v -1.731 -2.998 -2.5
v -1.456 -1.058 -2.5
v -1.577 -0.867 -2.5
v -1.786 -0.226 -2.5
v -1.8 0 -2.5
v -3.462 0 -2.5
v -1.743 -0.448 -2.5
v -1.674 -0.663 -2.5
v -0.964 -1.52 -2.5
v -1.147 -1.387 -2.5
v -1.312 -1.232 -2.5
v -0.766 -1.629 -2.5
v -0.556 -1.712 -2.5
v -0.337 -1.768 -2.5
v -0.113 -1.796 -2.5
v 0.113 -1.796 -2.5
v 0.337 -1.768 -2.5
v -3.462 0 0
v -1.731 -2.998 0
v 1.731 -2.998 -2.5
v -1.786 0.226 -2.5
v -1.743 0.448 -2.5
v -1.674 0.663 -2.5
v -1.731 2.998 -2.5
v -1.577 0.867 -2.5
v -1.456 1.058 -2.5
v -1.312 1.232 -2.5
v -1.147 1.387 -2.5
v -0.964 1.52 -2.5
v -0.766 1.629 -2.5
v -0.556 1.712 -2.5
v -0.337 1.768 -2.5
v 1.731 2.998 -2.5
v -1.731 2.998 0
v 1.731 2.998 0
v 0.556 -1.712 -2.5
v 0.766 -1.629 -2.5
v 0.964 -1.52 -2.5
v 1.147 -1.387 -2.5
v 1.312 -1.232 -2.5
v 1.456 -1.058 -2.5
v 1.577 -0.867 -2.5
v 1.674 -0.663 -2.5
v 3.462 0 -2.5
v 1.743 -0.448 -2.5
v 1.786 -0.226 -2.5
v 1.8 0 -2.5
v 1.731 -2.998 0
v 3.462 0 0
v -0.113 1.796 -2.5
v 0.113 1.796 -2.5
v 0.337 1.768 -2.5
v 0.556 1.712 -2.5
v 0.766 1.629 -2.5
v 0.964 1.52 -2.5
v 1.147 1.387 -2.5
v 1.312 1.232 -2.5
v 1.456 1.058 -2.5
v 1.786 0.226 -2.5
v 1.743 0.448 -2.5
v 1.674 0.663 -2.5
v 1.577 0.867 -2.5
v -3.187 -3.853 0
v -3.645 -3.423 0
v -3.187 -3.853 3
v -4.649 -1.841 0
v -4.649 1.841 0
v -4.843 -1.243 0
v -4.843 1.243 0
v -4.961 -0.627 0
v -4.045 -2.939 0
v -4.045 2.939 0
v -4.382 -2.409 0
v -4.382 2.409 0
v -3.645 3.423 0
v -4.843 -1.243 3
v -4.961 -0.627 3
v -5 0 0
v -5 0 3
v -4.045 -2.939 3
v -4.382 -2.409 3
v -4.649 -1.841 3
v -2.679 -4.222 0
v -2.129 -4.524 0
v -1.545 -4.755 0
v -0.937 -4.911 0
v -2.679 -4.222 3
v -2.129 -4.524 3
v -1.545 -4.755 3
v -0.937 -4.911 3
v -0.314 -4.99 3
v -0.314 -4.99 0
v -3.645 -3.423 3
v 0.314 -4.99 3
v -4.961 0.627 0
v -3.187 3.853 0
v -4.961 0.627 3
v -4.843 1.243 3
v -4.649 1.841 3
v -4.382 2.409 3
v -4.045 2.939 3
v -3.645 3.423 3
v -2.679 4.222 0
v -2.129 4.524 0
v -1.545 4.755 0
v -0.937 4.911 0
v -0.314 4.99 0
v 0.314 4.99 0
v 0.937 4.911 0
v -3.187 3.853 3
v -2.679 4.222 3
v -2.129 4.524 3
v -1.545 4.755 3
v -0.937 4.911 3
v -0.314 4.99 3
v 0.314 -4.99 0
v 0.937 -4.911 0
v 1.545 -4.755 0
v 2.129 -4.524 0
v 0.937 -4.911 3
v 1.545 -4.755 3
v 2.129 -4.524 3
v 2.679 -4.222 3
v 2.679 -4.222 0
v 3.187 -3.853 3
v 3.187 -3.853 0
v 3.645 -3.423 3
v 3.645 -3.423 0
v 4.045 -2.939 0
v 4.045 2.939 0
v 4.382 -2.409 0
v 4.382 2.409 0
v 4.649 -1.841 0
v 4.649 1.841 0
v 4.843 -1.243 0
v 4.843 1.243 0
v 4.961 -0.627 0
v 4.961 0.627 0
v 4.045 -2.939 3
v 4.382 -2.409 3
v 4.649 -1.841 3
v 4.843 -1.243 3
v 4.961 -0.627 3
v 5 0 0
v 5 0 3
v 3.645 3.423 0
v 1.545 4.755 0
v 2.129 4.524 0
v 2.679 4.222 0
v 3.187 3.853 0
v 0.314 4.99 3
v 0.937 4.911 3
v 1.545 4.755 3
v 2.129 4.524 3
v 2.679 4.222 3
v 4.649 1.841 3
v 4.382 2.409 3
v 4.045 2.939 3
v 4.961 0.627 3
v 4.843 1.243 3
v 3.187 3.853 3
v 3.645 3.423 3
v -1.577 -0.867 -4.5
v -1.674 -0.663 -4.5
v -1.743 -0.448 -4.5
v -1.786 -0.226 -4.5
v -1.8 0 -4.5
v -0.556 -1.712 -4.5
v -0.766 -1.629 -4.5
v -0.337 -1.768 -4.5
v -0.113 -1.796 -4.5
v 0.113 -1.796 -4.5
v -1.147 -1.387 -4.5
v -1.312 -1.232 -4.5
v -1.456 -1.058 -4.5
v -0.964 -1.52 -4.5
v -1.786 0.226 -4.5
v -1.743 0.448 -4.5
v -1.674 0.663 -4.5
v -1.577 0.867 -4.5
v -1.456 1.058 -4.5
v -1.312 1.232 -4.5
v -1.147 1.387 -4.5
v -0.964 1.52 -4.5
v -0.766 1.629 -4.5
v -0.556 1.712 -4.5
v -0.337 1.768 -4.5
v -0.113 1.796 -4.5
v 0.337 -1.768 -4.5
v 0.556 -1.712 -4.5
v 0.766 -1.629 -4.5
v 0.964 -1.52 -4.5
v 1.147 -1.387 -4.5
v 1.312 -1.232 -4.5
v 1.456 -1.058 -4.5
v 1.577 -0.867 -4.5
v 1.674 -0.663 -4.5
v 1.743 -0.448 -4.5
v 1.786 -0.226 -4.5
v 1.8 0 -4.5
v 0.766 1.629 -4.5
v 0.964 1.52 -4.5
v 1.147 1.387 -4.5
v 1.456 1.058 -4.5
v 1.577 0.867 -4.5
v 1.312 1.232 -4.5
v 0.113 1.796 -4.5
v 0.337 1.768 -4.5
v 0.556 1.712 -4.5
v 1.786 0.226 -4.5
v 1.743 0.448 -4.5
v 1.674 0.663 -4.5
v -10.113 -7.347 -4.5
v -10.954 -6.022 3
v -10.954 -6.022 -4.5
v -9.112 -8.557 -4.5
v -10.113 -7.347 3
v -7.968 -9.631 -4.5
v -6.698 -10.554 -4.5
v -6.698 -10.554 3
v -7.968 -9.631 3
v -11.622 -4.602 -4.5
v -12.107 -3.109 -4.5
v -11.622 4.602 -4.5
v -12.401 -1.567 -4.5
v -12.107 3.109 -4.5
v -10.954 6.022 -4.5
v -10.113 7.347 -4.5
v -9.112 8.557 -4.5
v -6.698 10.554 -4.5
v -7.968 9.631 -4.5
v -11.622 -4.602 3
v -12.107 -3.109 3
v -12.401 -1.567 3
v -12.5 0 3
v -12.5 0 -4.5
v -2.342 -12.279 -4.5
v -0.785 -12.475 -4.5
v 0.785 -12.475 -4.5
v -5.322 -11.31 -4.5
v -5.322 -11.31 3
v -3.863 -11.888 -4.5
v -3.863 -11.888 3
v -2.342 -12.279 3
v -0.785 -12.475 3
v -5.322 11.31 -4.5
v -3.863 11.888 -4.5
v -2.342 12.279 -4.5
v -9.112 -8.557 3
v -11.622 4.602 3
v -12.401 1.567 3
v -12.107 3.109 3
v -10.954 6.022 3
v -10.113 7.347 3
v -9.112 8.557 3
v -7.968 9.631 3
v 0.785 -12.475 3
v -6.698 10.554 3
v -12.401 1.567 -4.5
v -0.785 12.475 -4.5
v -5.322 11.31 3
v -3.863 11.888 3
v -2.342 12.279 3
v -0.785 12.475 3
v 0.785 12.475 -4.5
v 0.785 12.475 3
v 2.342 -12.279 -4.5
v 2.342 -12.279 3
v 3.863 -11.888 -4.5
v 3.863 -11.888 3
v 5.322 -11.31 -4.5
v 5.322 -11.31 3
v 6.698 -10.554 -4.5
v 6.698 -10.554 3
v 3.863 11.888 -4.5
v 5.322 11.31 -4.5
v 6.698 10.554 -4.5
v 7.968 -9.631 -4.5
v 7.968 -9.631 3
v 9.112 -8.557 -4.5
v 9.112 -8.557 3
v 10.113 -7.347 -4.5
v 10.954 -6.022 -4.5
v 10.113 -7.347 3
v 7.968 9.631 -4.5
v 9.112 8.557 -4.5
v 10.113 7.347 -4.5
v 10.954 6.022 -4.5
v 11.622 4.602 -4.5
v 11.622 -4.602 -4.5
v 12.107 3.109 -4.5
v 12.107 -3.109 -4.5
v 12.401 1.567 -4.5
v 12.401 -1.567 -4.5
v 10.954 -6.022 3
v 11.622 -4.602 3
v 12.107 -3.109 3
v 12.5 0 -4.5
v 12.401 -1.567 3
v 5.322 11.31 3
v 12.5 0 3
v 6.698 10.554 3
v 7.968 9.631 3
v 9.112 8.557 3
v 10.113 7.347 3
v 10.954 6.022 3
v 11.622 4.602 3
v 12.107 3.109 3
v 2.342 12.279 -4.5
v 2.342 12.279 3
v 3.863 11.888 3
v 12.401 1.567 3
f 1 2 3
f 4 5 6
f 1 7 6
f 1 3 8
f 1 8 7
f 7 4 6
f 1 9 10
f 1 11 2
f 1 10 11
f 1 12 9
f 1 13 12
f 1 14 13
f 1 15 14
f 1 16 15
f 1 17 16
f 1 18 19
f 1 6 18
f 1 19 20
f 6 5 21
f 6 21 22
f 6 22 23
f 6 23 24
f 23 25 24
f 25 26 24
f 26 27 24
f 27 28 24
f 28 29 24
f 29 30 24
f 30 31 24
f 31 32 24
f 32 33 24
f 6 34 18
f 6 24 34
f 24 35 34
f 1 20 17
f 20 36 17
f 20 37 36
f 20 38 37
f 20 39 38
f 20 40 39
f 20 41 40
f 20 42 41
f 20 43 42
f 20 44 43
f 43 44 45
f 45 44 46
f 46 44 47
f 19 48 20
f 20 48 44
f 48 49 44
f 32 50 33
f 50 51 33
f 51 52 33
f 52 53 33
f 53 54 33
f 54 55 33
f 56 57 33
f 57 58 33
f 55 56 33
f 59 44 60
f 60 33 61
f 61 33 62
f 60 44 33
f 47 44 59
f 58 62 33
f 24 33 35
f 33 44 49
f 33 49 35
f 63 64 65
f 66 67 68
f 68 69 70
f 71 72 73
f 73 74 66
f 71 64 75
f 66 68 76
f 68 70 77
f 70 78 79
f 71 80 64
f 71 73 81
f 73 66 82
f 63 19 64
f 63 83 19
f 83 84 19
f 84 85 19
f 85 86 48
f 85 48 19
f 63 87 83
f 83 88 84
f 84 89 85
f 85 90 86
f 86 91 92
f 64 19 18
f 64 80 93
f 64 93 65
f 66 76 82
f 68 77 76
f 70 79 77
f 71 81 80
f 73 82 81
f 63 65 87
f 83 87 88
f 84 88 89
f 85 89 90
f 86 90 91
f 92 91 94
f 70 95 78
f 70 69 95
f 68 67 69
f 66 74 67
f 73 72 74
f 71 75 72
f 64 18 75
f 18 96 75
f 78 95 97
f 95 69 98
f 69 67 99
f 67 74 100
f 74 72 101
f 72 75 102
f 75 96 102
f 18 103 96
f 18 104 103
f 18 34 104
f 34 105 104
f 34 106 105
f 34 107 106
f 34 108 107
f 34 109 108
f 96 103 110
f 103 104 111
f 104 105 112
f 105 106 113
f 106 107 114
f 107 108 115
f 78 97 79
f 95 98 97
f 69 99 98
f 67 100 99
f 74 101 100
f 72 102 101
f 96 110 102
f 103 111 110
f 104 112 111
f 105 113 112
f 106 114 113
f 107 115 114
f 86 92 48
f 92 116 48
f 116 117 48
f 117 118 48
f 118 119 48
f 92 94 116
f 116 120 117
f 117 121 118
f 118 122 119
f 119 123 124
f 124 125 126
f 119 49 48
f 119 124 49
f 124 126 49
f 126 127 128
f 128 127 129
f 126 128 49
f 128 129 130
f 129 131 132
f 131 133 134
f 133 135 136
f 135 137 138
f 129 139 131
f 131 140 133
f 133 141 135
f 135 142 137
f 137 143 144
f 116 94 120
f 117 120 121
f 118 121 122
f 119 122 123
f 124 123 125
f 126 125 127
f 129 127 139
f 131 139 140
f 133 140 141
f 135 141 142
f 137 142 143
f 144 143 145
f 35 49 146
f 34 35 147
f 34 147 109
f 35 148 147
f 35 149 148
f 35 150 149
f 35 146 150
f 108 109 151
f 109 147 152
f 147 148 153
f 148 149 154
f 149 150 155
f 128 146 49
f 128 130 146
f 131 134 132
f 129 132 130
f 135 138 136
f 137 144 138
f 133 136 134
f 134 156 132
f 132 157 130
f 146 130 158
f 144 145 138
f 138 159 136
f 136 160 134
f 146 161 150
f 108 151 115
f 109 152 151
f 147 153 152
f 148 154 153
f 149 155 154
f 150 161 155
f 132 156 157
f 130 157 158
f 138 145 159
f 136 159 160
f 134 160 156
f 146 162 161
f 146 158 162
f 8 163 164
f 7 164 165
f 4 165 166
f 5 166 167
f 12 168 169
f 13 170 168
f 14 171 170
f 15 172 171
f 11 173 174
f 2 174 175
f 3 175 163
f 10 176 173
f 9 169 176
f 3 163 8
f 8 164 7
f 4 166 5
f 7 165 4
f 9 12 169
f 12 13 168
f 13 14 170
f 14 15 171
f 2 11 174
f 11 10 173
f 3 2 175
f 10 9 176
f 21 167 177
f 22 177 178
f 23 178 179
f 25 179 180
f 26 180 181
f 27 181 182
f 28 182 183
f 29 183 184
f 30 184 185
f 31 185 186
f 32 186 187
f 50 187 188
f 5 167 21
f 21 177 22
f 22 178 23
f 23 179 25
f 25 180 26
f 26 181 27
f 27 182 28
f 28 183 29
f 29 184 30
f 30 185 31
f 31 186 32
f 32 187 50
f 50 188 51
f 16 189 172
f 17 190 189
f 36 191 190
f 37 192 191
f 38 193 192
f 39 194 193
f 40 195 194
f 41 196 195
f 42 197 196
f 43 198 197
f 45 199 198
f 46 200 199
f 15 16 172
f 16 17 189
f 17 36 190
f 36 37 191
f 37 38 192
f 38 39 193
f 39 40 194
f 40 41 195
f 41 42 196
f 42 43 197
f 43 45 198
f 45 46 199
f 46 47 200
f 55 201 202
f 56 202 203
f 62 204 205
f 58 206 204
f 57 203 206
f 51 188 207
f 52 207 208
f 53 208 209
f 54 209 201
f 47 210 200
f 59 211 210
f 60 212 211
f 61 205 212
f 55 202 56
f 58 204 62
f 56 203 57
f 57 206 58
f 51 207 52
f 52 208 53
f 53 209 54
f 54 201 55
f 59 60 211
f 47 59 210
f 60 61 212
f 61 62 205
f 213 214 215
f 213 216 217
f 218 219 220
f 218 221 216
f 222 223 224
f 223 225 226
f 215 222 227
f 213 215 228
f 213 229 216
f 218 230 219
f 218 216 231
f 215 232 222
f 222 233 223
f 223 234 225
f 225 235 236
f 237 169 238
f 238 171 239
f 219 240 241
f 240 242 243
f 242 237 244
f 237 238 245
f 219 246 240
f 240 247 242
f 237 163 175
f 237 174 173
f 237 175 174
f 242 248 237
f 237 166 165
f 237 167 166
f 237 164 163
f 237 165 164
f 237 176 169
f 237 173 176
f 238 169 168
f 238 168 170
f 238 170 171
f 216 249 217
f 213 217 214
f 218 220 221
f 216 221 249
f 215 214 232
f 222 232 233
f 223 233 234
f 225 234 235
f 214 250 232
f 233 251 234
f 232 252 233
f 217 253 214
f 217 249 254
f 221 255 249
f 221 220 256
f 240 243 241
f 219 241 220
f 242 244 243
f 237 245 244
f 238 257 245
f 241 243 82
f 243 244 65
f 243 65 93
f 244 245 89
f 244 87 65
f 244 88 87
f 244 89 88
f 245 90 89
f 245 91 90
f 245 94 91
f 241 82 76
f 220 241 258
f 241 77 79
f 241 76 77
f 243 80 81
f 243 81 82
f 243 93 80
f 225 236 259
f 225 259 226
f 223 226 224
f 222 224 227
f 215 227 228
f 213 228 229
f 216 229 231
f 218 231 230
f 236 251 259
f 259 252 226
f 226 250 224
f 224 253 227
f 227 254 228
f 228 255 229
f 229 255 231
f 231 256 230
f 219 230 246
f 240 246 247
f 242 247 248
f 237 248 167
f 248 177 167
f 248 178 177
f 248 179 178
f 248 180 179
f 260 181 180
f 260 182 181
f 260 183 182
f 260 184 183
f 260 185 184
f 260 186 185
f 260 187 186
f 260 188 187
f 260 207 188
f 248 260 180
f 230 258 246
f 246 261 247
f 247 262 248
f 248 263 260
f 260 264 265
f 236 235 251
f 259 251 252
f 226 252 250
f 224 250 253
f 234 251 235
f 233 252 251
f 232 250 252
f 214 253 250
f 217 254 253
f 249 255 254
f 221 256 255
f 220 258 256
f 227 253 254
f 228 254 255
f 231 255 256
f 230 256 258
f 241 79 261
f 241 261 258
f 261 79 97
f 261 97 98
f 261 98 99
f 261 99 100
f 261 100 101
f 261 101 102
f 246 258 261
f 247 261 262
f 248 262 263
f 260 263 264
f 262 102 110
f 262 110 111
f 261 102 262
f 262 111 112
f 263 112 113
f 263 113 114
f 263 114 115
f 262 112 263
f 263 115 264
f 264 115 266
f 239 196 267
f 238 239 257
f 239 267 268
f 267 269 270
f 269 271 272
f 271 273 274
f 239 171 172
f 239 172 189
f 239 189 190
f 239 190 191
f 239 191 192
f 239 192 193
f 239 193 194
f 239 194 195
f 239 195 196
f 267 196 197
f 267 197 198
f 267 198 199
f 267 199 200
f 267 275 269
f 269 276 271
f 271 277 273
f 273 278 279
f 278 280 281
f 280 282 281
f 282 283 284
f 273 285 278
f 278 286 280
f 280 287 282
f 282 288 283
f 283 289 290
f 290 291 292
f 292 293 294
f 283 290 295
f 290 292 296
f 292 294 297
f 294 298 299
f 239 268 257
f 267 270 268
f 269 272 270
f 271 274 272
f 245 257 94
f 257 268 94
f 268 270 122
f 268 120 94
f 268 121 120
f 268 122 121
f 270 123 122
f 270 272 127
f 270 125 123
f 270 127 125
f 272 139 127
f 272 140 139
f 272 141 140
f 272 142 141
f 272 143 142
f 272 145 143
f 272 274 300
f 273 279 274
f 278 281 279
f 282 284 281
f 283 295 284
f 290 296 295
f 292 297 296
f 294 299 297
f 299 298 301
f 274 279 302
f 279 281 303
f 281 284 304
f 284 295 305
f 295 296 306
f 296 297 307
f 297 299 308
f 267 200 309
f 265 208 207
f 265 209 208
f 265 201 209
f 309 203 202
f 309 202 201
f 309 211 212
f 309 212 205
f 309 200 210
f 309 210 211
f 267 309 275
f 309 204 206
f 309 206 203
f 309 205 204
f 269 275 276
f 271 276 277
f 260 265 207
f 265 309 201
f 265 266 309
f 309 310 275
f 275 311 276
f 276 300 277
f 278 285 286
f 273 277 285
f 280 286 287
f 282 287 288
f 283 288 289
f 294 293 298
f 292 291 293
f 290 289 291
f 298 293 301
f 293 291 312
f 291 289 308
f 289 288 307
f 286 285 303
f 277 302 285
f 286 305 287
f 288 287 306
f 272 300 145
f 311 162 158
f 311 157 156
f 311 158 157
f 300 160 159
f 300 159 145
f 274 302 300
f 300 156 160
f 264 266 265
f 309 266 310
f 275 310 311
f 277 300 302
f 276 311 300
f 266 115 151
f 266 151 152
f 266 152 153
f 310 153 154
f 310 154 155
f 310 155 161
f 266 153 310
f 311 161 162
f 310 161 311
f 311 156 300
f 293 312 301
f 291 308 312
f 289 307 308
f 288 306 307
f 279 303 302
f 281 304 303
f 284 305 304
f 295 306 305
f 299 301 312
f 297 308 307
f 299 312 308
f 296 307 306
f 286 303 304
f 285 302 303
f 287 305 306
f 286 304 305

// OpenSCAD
$fn = 50;

difference() {
	union() {
		translate(v = [0, 0, -4.5]) {
			cylinder(h = 7.5, r = 12.5);
		}
	}
	union() {
		translate(v = [0, 0, 0]) {
			rotate(a = [0, 0, 0]) {
				difference() {
					union() {
						translate(v = [0, 0, -2.5]) {
							linear_extrude(height = 2.5) {
								polygon(points = [[3.4619999999999997, 0.0], [1.7310000000000003, 2.9981799479017264], [-1.7309999999999992, 2.9981799479017264], [-3.4619999999999997, 4.2397272186481365e-16], [-1.7310000000000014, -2.998179947901726], [1.7309999999999977, -2.9981799479017277]]);
							}
						}
					}
					union();
				}
			}
		}
		#cylinder(h = 3, r = 5.0);
		#translate(v = [0, 0, -100.0]) {
			cylinder(h = 200, r = 1.8);
		}
	}
}
